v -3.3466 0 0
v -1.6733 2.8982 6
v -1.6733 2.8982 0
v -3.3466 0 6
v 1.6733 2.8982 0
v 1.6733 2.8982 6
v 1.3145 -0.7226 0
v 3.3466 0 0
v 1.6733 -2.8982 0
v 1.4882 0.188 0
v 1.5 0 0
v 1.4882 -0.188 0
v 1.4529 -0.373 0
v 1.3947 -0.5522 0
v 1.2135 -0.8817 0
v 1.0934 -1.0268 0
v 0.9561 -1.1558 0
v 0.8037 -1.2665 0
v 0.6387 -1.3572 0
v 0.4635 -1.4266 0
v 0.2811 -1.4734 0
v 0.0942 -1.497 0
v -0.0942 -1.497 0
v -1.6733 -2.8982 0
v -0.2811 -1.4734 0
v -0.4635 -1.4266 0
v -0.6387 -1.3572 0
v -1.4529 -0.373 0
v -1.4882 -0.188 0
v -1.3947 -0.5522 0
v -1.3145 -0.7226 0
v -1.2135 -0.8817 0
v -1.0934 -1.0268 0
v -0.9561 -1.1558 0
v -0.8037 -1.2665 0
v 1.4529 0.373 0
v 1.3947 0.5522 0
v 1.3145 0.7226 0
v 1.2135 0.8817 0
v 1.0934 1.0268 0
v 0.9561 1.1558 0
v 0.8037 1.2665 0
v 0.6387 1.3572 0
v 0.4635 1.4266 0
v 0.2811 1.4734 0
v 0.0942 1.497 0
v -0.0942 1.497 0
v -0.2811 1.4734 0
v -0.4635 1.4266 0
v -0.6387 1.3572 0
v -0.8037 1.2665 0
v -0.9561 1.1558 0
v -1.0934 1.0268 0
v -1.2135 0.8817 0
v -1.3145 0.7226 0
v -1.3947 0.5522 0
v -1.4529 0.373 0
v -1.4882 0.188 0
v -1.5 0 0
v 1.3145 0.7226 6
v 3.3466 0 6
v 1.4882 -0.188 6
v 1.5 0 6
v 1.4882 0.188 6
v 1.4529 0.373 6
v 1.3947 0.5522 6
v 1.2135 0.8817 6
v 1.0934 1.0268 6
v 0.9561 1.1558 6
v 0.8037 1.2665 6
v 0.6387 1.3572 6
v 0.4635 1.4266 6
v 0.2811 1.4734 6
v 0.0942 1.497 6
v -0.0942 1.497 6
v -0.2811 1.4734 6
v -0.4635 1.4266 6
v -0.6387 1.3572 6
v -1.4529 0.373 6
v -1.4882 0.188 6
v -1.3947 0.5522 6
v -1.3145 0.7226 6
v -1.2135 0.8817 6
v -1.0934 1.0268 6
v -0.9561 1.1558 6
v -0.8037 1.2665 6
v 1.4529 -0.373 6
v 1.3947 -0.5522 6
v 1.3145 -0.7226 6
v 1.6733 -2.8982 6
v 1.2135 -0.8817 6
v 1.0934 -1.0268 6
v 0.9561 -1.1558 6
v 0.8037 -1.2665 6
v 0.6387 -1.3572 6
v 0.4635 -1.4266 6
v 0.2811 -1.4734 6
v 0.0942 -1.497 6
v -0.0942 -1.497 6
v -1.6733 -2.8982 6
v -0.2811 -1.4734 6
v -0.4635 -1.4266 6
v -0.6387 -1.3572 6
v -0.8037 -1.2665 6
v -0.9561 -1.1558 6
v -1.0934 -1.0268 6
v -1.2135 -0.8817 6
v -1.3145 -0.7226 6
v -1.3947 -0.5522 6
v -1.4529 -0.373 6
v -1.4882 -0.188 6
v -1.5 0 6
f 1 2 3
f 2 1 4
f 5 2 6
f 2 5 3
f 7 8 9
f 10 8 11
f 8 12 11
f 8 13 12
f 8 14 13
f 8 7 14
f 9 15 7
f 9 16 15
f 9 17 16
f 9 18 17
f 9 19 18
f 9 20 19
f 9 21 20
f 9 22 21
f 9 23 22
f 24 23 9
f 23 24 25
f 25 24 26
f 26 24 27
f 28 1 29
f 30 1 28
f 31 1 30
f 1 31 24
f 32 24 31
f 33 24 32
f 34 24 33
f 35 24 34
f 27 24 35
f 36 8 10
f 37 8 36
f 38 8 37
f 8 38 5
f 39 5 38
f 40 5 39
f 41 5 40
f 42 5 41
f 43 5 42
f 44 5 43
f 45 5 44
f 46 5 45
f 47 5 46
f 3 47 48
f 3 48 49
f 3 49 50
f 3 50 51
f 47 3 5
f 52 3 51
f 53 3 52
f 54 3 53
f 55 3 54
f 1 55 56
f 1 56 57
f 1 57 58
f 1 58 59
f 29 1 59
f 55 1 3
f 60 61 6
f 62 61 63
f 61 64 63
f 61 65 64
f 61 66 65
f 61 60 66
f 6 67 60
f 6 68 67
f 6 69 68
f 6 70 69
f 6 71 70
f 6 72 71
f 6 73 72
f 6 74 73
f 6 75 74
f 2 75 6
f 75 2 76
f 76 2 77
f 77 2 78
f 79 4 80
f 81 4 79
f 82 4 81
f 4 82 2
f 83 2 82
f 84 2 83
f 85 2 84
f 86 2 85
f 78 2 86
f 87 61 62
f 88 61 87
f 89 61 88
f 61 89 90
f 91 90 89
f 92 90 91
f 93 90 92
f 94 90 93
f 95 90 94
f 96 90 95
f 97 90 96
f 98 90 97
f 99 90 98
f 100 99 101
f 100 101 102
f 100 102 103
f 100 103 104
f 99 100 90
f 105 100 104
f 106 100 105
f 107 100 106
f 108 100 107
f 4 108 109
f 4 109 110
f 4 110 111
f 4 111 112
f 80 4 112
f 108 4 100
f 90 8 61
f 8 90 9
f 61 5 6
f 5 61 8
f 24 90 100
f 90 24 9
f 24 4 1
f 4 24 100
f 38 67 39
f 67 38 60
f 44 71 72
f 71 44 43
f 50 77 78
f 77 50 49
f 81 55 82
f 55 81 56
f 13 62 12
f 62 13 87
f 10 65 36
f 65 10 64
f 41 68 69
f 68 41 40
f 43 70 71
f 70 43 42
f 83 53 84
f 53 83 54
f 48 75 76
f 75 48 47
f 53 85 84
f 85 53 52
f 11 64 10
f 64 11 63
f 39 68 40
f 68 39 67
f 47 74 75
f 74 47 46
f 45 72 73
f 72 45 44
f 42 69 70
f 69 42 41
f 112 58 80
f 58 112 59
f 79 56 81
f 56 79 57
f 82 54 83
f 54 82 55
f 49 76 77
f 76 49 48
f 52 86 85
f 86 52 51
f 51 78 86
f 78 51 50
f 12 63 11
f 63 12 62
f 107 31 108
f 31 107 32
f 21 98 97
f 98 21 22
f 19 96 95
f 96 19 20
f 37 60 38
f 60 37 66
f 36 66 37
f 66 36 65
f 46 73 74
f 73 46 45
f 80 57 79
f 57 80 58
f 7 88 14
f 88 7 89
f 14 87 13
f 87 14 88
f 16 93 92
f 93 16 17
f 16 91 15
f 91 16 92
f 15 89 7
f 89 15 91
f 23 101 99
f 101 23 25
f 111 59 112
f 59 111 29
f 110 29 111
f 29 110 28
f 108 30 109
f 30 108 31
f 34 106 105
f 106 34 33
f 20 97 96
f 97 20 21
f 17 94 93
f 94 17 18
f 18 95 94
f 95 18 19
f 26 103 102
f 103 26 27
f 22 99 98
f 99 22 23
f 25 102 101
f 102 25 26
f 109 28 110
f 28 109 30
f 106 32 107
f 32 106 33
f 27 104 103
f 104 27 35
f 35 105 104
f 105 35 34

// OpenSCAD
$fn = 50;


difference() {
	union() {
		linear_extrude(height = 6) {
			polygon(points = [[3.3466000000, 0.0000000000], [1.6733000000, 2.8982406163], [-1.6733000000, 2.8982406163], [-3.3466000000, 0.0000000000], [-1.6733000000, -2.8982406163], [1.6733000000, -2.8982406163]]);
		}
	}
	union() {
		cylinder(h = 6, r = 1.5000000000);
	}
}
